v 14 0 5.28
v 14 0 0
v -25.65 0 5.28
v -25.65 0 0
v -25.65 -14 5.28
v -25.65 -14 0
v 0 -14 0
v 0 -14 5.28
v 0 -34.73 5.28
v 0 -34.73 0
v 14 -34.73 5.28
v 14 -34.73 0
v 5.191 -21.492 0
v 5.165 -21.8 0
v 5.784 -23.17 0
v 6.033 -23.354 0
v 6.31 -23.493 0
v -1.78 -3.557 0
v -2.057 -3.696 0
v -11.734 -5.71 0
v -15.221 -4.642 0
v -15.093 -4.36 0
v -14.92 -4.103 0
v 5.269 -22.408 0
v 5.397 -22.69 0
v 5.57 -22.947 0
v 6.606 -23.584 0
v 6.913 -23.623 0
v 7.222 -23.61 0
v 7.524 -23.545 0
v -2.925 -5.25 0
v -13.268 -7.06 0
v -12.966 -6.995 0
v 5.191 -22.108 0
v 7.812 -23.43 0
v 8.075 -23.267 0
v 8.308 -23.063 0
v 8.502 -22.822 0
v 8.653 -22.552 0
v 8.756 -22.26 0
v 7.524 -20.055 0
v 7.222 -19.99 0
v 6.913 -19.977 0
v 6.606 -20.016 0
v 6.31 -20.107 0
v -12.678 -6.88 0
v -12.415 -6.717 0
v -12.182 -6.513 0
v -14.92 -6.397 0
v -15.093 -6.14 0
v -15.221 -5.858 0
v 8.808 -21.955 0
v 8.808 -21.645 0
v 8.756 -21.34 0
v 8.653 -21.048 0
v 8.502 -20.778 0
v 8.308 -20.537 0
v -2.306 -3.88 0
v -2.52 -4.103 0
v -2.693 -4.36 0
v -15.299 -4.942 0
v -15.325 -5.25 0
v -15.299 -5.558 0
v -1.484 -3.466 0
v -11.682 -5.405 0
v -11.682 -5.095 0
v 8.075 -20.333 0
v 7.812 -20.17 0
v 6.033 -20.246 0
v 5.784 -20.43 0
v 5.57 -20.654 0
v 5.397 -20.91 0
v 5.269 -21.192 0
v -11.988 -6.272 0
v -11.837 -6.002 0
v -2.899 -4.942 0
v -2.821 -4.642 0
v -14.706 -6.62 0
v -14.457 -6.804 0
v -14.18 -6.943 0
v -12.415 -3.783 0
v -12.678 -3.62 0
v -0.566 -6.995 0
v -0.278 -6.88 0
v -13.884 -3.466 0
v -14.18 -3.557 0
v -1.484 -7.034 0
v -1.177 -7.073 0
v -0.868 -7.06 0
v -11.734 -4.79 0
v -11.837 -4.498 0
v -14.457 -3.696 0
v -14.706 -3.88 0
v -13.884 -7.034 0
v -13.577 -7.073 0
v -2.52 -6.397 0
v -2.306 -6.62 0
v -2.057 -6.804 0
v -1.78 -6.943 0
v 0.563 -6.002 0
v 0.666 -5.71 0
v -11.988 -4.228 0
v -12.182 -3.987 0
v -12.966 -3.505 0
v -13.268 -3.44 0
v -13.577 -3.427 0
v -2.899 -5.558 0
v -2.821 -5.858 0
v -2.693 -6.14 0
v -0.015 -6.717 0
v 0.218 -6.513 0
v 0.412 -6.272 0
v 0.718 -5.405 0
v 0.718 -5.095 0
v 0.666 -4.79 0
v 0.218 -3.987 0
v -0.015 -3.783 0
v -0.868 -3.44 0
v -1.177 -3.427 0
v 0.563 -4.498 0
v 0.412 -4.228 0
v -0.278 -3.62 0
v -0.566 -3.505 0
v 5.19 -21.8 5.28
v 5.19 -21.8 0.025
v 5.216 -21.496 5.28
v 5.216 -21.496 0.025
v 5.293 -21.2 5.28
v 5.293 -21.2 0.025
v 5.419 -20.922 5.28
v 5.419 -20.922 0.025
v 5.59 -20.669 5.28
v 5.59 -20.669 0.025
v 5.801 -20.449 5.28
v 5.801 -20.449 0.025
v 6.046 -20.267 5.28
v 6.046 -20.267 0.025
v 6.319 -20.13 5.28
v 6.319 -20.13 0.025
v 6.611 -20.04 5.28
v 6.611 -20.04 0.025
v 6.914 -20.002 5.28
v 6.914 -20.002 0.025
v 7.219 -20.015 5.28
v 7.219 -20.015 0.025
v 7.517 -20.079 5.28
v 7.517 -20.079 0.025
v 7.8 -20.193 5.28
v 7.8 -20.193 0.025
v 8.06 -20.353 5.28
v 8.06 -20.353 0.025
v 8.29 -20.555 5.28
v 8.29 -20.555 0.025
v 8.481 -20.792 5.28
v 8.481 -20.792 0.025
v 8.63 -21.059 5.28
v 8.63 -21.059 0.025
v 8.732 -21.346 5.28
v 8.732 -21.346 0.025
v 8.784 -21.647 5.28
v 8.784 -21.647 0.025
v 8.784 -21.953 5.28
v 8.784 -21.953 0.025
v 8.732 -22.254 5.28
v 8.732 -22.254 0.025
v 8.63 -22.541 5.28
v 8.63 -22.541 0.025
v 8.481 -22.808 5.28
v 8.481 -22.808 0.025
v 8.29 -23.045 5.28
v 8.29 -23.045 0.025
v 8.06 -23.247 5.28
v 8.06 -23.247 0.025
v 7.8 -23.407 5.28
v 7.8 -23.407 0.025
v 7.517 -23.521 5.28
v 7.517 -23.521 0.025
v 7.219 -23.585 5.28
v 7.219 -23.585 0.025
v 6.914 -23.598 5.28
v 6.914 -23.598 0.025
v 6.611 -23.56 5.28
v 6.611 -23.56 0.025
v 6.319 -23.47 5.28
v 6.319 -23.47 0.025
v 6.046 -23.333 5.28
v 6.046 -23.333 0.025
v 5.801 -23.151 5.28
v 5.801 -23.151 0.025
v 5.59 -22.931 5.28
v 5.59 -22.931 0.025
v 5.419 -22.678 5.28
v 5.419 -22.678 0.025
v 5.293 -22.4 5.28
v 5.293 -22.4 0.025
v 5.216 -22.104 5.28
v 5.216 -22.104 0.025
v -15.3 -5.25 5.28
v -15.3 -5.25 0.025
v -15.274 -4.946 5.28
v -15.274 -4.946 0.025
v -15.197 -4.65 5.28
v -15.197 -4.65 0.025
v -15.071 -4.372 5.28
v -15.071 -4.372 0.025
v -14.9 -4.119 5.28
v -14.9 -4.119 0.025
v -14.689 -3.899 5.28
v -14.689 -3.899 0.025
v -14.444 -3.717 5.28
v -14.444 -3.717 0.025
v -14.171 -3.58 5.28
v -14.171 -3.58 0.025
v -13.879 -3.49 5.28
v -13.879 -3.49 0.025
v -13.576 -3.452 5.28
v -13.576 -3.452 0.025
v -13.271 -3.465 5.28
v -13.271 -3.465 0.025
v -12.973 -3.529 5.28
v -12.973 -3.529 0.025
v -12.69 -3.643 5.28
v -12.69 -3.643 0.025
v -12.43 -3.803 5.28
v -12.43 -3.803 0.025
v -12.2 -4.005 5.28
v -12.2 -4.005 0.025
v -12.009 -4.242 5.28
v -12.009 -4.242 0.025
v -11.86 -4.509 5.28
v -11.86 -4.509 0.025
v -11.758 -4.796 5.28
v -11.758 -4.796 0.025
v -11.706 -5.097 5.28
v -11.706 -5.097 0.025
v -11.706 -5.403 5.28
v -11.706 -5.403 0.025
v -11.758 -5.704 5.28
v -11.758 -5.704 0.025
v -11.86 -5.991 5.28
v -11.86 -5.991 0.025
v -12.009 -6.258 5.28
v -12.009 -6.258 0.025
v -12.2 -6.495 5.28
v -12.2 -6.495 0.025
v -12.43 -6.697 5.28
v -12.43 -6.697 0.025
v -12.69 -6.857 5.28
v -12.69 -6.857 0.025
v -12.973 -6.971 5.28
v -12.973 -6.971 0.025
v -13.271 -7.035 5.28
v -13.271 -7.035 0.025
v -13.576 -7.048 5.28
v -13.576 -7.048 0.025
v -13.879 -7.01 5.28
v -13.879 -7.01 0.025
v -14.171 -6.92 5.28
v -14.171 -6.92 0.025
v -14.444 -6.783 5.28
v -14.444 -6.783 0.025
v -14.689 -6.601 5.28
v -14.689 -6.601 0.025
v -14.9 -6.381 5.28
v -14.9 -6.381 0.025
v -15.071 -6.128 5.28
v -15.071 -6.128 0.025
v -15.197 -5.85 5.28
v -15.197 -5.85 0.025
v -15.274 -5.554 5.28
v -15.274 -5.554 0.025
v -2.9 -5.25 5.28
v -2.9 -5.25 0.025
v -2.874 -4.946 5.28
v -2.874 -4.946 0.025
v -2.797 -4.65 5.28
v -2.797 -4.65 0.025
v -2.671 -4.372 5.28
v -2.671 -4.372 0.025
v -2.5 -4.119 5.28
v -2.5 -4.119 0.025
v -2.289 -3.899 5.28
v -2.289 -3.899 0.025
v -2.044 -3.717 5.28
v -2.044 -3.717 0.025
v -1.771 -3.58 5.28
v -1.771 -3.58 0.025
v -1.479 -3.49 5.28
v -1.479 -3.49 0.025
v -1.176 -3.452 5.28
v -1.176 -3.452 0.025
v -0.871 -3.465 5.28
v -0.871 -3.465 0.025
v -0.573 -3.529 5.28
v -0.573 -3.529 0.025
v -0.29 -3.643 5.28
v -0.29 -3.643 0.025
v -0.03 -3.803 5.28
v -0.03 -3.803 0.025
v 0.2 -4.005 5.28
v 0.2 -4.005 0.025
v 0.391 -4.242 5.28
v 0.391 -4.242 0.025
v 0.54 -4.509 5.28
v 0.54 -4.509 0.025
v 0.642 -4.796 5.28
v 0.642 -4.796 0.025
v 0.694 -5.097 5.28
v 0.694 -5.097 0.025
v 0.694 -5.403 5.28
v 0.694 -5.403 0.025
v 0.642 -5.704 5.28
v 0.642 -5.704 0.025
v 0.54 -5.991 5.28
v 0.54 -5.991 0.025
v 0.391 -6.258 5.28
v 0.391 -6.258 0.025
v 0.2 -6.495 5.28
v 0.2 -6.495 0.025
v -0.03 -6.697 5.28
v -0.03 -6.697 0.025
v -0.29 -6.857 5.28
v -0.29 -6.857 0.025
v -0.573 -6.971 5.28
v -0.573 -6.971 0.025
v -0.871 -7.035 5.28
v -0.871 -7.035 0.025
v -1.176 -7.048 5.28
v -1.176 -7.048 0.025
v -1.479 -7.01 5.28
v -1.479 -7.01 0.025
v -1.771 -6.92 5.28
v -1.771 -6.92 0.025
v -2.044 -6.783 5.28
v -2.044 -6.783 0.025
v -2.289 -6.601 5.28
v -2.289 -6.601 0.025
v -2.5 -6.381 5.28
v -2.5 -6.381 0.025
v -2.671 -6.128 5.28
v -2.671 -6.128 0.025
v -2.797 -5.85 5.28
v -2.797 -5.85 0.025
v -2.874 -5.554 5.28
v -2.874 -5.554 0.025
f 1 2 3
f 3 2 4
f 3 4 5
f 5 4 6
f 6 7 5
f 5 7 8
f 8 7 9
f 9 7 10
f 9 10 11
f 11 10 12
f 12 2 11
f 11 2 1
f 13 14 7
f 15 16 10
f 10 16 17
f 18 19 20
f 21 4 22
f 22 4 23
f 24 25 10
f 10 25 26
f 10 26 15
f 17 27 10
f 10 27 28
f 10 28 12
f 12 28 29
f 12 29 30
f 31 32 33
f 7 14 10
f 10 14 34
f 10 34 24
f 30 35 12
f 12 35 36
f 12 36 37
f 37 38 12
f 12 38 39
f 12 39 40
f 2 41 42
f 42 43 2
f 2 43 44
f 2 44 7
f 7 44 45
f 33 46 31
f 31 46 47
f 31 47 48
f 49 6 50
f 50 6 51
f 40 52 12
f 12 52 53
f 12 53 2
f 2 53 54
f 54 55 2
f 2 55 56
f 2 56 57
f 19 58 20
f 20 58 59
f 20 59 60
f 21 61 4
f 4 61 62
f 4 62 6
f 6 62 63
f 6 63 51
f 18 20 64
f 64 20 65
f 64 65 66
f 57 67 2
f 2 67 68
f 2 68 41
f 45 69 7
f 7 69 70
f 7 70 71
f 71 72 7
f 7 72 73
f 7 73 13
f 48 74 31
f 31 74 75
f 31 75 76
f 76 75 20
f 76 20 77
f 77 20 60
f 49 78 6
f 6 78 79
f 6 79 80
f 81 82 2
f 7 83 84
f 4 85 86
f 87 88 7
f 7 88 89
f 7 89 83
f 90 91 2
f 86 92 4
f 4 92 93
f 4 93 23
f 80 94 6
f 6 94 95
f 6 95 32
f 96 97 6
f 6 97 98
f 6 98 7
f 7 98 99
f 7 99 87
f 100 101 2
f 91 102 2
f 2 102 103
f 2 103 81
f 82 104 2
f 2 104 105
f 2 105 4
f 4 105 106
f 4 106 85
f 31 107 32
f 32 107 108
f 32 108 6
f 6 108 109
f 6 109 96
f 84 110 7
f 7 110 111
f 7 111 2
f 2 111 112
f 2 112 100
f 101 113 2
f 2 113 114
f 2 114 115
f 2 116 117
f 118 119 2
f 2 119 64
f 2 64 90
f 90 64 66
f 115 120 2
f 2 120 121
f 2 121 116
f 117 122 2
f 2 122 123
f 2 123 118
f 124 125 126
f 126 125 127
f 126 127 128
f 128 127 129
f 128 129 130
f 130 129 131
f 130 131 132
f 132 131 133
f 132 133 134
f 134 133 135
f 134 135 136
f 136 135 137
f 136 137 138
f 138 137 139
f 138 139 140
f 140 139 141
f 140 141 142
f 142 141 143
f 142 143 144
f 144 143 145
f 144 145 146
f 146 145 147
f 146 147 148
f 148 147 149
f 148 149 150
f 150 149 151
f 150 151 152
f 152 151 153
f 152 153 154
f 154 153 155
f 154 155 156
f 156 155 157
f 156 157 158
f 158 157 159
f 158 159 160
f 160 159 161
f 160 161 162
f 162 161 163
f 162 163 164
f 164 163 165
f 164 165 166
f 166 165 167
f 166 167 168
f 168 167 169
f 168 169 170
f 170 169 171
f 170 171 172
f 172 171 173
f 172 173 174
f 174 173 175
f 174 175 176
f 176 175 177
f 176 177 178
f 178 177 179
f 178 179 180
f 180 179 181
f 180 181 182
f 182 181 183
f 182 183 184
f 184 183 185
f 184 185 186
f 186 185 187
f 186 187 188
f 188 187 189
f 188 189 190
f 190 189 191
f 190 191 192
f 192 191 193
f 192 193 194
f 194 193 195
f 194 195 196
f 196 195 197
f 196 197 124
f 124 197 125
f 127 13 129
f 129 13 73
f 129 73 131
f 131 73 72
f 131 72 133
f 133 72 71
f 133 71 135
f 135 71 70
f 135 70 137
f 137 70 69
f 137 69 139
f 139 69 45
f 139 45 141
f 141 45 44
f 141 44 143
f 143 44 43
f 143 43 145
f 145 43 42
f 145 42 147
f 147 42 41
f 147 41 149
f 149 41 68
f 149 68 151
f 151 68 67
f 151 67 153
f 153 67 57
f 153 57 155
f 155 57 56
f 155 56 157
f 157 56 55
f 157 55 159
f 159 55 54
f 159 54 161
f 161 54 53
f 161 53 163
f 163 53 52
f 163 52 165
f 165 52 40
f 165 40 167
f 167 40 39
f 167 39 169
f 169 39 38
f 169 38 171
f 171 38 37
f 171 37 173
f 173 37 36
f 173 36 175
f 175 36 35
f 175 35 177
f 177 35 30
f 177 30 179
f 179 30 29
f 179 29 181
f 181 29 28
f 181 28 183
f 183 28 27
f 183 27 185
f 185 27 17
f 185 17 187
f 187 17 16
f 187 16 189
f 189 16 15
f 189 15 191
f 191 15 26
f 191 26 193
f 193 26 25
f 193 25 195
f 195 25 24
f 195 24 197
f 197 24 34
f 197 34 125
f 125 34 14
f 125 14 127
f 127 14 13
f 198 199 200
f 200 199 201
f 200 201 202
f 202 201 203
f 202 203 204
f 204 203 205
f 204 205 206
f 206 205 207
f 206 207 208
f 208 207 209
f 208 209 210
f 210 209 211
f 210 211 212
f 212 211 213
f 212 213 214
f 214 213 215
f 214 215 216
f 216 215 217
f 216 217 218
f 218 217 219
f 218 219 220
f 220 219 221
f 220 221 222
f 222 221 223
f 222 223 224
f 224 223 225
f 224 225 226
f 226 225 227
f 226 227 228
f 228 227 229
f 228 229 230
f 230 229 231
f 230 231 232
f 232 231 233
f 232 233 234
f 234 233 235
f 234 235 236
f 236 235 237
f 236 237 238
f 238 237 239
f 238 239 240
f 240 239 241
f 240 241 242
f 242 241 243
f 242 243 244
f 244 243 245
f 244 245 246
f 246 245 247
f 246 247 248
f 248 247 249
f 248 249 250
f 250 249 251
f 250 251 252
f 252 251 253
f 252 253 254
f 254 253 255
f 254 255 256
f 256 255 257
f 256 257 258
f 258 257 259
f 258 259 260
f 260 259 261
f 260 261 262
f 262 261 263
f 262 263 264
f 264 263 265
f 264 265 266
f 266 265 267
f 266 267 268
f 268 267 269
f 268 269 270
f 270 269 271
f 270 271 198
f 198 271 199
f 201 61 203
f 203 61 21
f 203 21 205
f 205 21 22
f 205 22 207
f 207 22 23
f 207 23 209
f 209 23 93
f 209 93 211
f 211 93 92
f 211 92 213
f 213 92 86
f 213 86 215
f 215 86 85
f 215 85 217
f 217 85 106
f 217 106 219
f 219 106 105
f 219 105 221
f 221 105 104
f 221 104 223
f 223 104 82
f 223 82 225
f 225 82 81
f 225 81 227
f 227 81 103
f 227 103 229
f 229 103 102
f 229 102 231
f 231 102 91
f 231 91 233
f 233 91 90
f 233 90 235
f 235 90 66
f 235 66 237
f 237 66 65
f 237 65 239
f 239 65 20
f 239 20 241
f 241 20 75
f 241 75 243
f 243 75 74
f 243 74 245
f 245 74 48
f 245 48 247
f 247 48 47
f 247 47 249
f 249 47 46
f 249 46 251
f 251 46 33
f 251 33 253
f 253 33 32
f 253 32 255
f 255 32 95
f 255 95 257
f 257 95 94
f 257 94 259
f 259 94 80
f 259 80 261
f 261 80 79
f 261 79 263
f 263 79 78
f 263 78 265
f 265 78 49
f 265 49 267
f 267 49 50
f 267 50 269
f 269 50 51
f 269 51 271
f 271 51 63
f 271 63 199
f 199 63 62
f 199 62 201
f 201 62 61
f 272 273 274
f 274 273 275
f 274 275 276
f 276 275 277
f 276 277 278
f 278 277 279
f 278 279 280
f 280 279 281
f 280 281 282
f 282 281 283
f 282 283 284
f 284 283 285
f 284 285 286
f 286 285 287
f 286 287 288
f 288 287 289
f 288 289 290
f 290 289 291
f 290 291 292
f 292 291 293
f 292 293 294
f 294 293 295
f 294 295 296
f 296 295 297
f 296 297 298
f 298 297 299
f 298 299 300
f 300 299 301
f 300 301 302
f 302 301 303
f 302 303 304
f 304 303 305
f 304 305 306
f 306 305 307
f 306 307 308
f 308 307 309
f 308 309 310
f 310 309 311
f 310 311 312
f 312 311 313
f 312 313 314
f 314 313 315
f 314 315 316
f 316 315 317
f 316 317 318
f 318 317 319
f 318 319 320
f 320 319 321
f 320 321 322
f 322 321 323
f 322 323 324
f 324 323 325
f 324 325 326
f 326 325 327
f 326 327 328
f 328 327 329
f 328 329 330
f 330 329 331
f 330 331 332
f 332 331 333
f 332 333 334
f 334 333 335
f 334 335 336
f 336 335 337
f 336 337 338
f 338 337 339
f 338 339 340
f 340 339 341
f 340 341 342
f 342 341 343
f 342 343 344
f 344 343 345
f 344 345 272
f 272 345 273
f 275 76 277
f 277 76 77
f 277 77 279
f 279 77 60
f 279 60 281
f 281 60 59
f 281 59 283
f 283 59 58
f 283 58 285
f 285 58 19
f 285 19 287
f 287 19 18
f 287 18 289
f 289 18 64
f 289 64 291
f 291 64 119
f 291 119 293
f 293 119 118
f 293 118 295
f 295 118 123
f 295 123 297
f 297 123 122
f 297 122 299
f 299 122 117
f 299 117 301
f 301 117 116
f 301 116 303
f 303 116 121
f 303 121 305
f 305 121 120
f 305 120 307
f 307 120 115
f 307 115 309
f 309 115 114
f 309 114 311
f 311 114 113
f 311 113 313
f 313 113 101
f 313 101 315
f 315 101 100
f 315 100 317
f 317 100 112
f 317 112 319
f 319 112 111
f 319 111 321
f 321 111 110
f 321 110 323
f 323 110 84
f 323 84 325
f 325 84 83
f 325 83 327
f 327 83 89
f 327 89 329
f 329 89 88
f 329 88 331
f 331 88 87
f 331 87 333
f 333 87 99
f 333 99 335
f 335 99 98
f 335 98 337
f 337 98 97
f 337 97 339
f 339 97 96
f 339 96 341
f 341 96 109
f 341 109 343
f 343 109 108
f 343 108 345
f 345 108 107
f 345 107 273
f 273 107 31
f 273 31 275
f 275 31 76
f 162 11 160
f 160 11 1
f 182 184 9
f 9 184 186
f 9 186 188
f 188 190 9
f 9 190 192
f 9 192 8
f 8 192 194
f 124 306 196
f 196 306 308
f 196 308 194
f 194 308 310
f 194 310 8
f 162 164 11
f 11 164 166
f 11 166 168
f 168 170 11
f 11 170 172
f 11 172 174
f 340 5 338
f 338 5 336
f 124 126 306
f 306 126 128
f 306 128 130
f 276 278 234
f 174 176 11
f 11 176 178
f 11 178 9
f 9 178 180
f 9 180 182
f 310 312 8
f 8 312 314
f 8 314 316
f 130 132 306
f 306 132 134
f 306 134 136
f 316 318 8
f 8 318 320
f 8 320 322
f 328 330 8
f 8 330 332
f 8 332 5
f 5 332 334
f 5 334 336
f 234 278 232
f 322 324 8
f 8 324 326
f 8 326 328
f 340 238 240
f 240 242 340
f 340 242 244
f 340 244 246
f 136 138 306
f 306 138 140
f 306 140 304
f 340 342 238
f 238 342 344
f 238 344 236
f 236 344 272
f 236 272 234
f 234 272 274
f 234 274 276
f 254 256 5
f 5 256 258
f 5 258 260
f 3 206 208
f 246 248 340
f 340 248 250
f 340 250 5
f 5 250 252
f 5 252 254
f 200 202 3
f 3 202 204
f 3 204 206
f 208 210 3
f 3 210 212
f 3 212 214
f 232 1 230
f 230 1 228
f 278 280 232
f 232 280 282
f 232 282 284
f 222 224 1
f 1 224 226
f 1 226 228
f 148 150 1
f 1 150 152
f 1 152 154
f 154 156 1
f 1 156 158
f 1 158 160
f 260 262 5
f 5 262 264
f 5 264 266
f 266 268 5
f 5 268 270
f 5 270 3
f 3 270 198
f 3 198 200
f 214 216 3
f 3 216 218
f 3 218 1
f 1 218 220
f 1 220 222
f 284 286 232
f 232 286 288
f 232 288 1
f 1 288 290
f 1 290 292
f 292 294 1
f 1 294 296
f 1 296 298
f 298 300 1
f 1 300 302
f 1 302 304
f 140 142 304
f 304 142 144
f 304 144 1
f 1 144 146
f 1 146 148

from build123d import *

# Parameters (mm, degrees)
BOSS_EXTRUDE1_DEPTH            = 42.65
SKETCH2_R                      = 6.425
CUT_EXTRUDE1_DEPTH             = 42.65
SKETCH3_W                      = 1.9
SKETCH3_H                      = 30
CUT_EXTRUDE2_DEPTH             = 42.65
SKETCH4_R                      = 6.425
CUT_EXTRUDE3_DEPTH             = 42.65
SKETCH5_W                      = 32
SKETCH5_H                      = 1.9
CUT_EXTRUDE4_DEPTH             = 42.65
M3_CLEARANCE_HOLE1_D           = 3.6
M3_CLEARANCE_HOLE1_DEPTH       = 10
M3_CLEARANCE_HOLE1_CSINK_D     = 3.65
M3_CLEARANCE_HOLE1_CSINK_ANGLE = 90
M3_CLEARANCE_HOLE1_TIP         = 1.081549114
SKETCH9_W                      = 61.993652624
SKETCH9_H                      = 40.55348858
CUT_EXTRUDE5_DEPTH             = 61.688696641


with BuildPart() as part:
    # Sketch1 → Boss-Extrude1 (new body)
    with BuildSketch(Plane.XY):
        Polygon((14, 0), (-25.65, 0), (-25.65, -14), (0, -14), (0, -34.73), (14, -34.73), align=None)
    extrude(amount=BOSS_EXTRUDE1_DEPTH)

    # Sketch2 → Cut-Extrude1 (cut)
    with BuildSketch(Plane.XZ.offset(14)):
        with Locations((-14.665, 27.725)):
            Circle(SKETCH2_R)
    extrude(amount=-CUT_EXTRUDE1_DEPTH, mode=Mode.SUBTRACT)

    # Sketch3 → Cut-Extrude2 (cut)
    with BuildSketch(Plane.XZ.offset(14)):
        with Locations((-16.7, 27.65)):
            Rectangle(SKETCH3_W, SKETCH3_H)
    extrude(amount=-CUT_EXTRUDE2_DEPTH, mode=Mode.SUBTRACT)

    # Sketch4 → Cut-Extrude3 (cut)
    with BuildSketch(Plane.ZY):
        with Locations((18.725, -21.745)):
            Circle(SKETCH4_R)
    extrude(amount=-CUT_EXTRUDE3_DEPTH, mode=Mode.SUBTRACT)

    # Sketch5 → Cut-Extrude4 (cut)
    with BuildSketch(Plane.ZY):
        with Locations((26.65, -25.78)):
            Rectangle(SKETCH5_W, SKETCH5_H)
    extrude(amount=-CUT_EXTRUDE4_DEPTH, mode=Mode.SUBTRACT)

    # M3 Clearance Hole1
    with Locations(Plane(origin=(0, 0, 0), x_dir=(-1, 0, 0), z_dir=(0, 0, -1))):
        with Locations((1.1, -5.25), (13.5, -5.25), (-6.99, -21.8)):
            CounterSinkHole(M3_CLEARANCE_HOLE1_D / 2, M3_CLEARANCE_HOLE1_CSINK_D / 2, depth=M3_CLEARANCE_HOLE1_DEPTH, counter_sink_angle=M3_CLEARANCE_HOLE1_CSINK_ANGLE)
            with Locations((0, 0, -(M3_CLEARANCE_HOLE1_DEPTH + M3_CLEARANCE_HOLE1_TIP / 2))):  # 118° drill point
                Cone(0, M3_CLEARANCE_HOLE1_D / 2, M3_CLEARANCE_HOLE1_TIP, mode=Mode.SUBTRACT)

    # Sketch9 → Cut-Extrude5 (cut, through all)
    with BuildSketch(Plane(origin=(0, 0, 0), x_dir=(1, 0, 0), z_dir=(0, 1, 0))):
        with Locations((-5.42180131, -25.55674429)):
            Rectangle(SKETCH9_W, SKETCH9_H)
    extrude(amount=-CUT_EXTRUDE5_DEPTH, mode=Mode.SUBTRACT)


solid = part.part
